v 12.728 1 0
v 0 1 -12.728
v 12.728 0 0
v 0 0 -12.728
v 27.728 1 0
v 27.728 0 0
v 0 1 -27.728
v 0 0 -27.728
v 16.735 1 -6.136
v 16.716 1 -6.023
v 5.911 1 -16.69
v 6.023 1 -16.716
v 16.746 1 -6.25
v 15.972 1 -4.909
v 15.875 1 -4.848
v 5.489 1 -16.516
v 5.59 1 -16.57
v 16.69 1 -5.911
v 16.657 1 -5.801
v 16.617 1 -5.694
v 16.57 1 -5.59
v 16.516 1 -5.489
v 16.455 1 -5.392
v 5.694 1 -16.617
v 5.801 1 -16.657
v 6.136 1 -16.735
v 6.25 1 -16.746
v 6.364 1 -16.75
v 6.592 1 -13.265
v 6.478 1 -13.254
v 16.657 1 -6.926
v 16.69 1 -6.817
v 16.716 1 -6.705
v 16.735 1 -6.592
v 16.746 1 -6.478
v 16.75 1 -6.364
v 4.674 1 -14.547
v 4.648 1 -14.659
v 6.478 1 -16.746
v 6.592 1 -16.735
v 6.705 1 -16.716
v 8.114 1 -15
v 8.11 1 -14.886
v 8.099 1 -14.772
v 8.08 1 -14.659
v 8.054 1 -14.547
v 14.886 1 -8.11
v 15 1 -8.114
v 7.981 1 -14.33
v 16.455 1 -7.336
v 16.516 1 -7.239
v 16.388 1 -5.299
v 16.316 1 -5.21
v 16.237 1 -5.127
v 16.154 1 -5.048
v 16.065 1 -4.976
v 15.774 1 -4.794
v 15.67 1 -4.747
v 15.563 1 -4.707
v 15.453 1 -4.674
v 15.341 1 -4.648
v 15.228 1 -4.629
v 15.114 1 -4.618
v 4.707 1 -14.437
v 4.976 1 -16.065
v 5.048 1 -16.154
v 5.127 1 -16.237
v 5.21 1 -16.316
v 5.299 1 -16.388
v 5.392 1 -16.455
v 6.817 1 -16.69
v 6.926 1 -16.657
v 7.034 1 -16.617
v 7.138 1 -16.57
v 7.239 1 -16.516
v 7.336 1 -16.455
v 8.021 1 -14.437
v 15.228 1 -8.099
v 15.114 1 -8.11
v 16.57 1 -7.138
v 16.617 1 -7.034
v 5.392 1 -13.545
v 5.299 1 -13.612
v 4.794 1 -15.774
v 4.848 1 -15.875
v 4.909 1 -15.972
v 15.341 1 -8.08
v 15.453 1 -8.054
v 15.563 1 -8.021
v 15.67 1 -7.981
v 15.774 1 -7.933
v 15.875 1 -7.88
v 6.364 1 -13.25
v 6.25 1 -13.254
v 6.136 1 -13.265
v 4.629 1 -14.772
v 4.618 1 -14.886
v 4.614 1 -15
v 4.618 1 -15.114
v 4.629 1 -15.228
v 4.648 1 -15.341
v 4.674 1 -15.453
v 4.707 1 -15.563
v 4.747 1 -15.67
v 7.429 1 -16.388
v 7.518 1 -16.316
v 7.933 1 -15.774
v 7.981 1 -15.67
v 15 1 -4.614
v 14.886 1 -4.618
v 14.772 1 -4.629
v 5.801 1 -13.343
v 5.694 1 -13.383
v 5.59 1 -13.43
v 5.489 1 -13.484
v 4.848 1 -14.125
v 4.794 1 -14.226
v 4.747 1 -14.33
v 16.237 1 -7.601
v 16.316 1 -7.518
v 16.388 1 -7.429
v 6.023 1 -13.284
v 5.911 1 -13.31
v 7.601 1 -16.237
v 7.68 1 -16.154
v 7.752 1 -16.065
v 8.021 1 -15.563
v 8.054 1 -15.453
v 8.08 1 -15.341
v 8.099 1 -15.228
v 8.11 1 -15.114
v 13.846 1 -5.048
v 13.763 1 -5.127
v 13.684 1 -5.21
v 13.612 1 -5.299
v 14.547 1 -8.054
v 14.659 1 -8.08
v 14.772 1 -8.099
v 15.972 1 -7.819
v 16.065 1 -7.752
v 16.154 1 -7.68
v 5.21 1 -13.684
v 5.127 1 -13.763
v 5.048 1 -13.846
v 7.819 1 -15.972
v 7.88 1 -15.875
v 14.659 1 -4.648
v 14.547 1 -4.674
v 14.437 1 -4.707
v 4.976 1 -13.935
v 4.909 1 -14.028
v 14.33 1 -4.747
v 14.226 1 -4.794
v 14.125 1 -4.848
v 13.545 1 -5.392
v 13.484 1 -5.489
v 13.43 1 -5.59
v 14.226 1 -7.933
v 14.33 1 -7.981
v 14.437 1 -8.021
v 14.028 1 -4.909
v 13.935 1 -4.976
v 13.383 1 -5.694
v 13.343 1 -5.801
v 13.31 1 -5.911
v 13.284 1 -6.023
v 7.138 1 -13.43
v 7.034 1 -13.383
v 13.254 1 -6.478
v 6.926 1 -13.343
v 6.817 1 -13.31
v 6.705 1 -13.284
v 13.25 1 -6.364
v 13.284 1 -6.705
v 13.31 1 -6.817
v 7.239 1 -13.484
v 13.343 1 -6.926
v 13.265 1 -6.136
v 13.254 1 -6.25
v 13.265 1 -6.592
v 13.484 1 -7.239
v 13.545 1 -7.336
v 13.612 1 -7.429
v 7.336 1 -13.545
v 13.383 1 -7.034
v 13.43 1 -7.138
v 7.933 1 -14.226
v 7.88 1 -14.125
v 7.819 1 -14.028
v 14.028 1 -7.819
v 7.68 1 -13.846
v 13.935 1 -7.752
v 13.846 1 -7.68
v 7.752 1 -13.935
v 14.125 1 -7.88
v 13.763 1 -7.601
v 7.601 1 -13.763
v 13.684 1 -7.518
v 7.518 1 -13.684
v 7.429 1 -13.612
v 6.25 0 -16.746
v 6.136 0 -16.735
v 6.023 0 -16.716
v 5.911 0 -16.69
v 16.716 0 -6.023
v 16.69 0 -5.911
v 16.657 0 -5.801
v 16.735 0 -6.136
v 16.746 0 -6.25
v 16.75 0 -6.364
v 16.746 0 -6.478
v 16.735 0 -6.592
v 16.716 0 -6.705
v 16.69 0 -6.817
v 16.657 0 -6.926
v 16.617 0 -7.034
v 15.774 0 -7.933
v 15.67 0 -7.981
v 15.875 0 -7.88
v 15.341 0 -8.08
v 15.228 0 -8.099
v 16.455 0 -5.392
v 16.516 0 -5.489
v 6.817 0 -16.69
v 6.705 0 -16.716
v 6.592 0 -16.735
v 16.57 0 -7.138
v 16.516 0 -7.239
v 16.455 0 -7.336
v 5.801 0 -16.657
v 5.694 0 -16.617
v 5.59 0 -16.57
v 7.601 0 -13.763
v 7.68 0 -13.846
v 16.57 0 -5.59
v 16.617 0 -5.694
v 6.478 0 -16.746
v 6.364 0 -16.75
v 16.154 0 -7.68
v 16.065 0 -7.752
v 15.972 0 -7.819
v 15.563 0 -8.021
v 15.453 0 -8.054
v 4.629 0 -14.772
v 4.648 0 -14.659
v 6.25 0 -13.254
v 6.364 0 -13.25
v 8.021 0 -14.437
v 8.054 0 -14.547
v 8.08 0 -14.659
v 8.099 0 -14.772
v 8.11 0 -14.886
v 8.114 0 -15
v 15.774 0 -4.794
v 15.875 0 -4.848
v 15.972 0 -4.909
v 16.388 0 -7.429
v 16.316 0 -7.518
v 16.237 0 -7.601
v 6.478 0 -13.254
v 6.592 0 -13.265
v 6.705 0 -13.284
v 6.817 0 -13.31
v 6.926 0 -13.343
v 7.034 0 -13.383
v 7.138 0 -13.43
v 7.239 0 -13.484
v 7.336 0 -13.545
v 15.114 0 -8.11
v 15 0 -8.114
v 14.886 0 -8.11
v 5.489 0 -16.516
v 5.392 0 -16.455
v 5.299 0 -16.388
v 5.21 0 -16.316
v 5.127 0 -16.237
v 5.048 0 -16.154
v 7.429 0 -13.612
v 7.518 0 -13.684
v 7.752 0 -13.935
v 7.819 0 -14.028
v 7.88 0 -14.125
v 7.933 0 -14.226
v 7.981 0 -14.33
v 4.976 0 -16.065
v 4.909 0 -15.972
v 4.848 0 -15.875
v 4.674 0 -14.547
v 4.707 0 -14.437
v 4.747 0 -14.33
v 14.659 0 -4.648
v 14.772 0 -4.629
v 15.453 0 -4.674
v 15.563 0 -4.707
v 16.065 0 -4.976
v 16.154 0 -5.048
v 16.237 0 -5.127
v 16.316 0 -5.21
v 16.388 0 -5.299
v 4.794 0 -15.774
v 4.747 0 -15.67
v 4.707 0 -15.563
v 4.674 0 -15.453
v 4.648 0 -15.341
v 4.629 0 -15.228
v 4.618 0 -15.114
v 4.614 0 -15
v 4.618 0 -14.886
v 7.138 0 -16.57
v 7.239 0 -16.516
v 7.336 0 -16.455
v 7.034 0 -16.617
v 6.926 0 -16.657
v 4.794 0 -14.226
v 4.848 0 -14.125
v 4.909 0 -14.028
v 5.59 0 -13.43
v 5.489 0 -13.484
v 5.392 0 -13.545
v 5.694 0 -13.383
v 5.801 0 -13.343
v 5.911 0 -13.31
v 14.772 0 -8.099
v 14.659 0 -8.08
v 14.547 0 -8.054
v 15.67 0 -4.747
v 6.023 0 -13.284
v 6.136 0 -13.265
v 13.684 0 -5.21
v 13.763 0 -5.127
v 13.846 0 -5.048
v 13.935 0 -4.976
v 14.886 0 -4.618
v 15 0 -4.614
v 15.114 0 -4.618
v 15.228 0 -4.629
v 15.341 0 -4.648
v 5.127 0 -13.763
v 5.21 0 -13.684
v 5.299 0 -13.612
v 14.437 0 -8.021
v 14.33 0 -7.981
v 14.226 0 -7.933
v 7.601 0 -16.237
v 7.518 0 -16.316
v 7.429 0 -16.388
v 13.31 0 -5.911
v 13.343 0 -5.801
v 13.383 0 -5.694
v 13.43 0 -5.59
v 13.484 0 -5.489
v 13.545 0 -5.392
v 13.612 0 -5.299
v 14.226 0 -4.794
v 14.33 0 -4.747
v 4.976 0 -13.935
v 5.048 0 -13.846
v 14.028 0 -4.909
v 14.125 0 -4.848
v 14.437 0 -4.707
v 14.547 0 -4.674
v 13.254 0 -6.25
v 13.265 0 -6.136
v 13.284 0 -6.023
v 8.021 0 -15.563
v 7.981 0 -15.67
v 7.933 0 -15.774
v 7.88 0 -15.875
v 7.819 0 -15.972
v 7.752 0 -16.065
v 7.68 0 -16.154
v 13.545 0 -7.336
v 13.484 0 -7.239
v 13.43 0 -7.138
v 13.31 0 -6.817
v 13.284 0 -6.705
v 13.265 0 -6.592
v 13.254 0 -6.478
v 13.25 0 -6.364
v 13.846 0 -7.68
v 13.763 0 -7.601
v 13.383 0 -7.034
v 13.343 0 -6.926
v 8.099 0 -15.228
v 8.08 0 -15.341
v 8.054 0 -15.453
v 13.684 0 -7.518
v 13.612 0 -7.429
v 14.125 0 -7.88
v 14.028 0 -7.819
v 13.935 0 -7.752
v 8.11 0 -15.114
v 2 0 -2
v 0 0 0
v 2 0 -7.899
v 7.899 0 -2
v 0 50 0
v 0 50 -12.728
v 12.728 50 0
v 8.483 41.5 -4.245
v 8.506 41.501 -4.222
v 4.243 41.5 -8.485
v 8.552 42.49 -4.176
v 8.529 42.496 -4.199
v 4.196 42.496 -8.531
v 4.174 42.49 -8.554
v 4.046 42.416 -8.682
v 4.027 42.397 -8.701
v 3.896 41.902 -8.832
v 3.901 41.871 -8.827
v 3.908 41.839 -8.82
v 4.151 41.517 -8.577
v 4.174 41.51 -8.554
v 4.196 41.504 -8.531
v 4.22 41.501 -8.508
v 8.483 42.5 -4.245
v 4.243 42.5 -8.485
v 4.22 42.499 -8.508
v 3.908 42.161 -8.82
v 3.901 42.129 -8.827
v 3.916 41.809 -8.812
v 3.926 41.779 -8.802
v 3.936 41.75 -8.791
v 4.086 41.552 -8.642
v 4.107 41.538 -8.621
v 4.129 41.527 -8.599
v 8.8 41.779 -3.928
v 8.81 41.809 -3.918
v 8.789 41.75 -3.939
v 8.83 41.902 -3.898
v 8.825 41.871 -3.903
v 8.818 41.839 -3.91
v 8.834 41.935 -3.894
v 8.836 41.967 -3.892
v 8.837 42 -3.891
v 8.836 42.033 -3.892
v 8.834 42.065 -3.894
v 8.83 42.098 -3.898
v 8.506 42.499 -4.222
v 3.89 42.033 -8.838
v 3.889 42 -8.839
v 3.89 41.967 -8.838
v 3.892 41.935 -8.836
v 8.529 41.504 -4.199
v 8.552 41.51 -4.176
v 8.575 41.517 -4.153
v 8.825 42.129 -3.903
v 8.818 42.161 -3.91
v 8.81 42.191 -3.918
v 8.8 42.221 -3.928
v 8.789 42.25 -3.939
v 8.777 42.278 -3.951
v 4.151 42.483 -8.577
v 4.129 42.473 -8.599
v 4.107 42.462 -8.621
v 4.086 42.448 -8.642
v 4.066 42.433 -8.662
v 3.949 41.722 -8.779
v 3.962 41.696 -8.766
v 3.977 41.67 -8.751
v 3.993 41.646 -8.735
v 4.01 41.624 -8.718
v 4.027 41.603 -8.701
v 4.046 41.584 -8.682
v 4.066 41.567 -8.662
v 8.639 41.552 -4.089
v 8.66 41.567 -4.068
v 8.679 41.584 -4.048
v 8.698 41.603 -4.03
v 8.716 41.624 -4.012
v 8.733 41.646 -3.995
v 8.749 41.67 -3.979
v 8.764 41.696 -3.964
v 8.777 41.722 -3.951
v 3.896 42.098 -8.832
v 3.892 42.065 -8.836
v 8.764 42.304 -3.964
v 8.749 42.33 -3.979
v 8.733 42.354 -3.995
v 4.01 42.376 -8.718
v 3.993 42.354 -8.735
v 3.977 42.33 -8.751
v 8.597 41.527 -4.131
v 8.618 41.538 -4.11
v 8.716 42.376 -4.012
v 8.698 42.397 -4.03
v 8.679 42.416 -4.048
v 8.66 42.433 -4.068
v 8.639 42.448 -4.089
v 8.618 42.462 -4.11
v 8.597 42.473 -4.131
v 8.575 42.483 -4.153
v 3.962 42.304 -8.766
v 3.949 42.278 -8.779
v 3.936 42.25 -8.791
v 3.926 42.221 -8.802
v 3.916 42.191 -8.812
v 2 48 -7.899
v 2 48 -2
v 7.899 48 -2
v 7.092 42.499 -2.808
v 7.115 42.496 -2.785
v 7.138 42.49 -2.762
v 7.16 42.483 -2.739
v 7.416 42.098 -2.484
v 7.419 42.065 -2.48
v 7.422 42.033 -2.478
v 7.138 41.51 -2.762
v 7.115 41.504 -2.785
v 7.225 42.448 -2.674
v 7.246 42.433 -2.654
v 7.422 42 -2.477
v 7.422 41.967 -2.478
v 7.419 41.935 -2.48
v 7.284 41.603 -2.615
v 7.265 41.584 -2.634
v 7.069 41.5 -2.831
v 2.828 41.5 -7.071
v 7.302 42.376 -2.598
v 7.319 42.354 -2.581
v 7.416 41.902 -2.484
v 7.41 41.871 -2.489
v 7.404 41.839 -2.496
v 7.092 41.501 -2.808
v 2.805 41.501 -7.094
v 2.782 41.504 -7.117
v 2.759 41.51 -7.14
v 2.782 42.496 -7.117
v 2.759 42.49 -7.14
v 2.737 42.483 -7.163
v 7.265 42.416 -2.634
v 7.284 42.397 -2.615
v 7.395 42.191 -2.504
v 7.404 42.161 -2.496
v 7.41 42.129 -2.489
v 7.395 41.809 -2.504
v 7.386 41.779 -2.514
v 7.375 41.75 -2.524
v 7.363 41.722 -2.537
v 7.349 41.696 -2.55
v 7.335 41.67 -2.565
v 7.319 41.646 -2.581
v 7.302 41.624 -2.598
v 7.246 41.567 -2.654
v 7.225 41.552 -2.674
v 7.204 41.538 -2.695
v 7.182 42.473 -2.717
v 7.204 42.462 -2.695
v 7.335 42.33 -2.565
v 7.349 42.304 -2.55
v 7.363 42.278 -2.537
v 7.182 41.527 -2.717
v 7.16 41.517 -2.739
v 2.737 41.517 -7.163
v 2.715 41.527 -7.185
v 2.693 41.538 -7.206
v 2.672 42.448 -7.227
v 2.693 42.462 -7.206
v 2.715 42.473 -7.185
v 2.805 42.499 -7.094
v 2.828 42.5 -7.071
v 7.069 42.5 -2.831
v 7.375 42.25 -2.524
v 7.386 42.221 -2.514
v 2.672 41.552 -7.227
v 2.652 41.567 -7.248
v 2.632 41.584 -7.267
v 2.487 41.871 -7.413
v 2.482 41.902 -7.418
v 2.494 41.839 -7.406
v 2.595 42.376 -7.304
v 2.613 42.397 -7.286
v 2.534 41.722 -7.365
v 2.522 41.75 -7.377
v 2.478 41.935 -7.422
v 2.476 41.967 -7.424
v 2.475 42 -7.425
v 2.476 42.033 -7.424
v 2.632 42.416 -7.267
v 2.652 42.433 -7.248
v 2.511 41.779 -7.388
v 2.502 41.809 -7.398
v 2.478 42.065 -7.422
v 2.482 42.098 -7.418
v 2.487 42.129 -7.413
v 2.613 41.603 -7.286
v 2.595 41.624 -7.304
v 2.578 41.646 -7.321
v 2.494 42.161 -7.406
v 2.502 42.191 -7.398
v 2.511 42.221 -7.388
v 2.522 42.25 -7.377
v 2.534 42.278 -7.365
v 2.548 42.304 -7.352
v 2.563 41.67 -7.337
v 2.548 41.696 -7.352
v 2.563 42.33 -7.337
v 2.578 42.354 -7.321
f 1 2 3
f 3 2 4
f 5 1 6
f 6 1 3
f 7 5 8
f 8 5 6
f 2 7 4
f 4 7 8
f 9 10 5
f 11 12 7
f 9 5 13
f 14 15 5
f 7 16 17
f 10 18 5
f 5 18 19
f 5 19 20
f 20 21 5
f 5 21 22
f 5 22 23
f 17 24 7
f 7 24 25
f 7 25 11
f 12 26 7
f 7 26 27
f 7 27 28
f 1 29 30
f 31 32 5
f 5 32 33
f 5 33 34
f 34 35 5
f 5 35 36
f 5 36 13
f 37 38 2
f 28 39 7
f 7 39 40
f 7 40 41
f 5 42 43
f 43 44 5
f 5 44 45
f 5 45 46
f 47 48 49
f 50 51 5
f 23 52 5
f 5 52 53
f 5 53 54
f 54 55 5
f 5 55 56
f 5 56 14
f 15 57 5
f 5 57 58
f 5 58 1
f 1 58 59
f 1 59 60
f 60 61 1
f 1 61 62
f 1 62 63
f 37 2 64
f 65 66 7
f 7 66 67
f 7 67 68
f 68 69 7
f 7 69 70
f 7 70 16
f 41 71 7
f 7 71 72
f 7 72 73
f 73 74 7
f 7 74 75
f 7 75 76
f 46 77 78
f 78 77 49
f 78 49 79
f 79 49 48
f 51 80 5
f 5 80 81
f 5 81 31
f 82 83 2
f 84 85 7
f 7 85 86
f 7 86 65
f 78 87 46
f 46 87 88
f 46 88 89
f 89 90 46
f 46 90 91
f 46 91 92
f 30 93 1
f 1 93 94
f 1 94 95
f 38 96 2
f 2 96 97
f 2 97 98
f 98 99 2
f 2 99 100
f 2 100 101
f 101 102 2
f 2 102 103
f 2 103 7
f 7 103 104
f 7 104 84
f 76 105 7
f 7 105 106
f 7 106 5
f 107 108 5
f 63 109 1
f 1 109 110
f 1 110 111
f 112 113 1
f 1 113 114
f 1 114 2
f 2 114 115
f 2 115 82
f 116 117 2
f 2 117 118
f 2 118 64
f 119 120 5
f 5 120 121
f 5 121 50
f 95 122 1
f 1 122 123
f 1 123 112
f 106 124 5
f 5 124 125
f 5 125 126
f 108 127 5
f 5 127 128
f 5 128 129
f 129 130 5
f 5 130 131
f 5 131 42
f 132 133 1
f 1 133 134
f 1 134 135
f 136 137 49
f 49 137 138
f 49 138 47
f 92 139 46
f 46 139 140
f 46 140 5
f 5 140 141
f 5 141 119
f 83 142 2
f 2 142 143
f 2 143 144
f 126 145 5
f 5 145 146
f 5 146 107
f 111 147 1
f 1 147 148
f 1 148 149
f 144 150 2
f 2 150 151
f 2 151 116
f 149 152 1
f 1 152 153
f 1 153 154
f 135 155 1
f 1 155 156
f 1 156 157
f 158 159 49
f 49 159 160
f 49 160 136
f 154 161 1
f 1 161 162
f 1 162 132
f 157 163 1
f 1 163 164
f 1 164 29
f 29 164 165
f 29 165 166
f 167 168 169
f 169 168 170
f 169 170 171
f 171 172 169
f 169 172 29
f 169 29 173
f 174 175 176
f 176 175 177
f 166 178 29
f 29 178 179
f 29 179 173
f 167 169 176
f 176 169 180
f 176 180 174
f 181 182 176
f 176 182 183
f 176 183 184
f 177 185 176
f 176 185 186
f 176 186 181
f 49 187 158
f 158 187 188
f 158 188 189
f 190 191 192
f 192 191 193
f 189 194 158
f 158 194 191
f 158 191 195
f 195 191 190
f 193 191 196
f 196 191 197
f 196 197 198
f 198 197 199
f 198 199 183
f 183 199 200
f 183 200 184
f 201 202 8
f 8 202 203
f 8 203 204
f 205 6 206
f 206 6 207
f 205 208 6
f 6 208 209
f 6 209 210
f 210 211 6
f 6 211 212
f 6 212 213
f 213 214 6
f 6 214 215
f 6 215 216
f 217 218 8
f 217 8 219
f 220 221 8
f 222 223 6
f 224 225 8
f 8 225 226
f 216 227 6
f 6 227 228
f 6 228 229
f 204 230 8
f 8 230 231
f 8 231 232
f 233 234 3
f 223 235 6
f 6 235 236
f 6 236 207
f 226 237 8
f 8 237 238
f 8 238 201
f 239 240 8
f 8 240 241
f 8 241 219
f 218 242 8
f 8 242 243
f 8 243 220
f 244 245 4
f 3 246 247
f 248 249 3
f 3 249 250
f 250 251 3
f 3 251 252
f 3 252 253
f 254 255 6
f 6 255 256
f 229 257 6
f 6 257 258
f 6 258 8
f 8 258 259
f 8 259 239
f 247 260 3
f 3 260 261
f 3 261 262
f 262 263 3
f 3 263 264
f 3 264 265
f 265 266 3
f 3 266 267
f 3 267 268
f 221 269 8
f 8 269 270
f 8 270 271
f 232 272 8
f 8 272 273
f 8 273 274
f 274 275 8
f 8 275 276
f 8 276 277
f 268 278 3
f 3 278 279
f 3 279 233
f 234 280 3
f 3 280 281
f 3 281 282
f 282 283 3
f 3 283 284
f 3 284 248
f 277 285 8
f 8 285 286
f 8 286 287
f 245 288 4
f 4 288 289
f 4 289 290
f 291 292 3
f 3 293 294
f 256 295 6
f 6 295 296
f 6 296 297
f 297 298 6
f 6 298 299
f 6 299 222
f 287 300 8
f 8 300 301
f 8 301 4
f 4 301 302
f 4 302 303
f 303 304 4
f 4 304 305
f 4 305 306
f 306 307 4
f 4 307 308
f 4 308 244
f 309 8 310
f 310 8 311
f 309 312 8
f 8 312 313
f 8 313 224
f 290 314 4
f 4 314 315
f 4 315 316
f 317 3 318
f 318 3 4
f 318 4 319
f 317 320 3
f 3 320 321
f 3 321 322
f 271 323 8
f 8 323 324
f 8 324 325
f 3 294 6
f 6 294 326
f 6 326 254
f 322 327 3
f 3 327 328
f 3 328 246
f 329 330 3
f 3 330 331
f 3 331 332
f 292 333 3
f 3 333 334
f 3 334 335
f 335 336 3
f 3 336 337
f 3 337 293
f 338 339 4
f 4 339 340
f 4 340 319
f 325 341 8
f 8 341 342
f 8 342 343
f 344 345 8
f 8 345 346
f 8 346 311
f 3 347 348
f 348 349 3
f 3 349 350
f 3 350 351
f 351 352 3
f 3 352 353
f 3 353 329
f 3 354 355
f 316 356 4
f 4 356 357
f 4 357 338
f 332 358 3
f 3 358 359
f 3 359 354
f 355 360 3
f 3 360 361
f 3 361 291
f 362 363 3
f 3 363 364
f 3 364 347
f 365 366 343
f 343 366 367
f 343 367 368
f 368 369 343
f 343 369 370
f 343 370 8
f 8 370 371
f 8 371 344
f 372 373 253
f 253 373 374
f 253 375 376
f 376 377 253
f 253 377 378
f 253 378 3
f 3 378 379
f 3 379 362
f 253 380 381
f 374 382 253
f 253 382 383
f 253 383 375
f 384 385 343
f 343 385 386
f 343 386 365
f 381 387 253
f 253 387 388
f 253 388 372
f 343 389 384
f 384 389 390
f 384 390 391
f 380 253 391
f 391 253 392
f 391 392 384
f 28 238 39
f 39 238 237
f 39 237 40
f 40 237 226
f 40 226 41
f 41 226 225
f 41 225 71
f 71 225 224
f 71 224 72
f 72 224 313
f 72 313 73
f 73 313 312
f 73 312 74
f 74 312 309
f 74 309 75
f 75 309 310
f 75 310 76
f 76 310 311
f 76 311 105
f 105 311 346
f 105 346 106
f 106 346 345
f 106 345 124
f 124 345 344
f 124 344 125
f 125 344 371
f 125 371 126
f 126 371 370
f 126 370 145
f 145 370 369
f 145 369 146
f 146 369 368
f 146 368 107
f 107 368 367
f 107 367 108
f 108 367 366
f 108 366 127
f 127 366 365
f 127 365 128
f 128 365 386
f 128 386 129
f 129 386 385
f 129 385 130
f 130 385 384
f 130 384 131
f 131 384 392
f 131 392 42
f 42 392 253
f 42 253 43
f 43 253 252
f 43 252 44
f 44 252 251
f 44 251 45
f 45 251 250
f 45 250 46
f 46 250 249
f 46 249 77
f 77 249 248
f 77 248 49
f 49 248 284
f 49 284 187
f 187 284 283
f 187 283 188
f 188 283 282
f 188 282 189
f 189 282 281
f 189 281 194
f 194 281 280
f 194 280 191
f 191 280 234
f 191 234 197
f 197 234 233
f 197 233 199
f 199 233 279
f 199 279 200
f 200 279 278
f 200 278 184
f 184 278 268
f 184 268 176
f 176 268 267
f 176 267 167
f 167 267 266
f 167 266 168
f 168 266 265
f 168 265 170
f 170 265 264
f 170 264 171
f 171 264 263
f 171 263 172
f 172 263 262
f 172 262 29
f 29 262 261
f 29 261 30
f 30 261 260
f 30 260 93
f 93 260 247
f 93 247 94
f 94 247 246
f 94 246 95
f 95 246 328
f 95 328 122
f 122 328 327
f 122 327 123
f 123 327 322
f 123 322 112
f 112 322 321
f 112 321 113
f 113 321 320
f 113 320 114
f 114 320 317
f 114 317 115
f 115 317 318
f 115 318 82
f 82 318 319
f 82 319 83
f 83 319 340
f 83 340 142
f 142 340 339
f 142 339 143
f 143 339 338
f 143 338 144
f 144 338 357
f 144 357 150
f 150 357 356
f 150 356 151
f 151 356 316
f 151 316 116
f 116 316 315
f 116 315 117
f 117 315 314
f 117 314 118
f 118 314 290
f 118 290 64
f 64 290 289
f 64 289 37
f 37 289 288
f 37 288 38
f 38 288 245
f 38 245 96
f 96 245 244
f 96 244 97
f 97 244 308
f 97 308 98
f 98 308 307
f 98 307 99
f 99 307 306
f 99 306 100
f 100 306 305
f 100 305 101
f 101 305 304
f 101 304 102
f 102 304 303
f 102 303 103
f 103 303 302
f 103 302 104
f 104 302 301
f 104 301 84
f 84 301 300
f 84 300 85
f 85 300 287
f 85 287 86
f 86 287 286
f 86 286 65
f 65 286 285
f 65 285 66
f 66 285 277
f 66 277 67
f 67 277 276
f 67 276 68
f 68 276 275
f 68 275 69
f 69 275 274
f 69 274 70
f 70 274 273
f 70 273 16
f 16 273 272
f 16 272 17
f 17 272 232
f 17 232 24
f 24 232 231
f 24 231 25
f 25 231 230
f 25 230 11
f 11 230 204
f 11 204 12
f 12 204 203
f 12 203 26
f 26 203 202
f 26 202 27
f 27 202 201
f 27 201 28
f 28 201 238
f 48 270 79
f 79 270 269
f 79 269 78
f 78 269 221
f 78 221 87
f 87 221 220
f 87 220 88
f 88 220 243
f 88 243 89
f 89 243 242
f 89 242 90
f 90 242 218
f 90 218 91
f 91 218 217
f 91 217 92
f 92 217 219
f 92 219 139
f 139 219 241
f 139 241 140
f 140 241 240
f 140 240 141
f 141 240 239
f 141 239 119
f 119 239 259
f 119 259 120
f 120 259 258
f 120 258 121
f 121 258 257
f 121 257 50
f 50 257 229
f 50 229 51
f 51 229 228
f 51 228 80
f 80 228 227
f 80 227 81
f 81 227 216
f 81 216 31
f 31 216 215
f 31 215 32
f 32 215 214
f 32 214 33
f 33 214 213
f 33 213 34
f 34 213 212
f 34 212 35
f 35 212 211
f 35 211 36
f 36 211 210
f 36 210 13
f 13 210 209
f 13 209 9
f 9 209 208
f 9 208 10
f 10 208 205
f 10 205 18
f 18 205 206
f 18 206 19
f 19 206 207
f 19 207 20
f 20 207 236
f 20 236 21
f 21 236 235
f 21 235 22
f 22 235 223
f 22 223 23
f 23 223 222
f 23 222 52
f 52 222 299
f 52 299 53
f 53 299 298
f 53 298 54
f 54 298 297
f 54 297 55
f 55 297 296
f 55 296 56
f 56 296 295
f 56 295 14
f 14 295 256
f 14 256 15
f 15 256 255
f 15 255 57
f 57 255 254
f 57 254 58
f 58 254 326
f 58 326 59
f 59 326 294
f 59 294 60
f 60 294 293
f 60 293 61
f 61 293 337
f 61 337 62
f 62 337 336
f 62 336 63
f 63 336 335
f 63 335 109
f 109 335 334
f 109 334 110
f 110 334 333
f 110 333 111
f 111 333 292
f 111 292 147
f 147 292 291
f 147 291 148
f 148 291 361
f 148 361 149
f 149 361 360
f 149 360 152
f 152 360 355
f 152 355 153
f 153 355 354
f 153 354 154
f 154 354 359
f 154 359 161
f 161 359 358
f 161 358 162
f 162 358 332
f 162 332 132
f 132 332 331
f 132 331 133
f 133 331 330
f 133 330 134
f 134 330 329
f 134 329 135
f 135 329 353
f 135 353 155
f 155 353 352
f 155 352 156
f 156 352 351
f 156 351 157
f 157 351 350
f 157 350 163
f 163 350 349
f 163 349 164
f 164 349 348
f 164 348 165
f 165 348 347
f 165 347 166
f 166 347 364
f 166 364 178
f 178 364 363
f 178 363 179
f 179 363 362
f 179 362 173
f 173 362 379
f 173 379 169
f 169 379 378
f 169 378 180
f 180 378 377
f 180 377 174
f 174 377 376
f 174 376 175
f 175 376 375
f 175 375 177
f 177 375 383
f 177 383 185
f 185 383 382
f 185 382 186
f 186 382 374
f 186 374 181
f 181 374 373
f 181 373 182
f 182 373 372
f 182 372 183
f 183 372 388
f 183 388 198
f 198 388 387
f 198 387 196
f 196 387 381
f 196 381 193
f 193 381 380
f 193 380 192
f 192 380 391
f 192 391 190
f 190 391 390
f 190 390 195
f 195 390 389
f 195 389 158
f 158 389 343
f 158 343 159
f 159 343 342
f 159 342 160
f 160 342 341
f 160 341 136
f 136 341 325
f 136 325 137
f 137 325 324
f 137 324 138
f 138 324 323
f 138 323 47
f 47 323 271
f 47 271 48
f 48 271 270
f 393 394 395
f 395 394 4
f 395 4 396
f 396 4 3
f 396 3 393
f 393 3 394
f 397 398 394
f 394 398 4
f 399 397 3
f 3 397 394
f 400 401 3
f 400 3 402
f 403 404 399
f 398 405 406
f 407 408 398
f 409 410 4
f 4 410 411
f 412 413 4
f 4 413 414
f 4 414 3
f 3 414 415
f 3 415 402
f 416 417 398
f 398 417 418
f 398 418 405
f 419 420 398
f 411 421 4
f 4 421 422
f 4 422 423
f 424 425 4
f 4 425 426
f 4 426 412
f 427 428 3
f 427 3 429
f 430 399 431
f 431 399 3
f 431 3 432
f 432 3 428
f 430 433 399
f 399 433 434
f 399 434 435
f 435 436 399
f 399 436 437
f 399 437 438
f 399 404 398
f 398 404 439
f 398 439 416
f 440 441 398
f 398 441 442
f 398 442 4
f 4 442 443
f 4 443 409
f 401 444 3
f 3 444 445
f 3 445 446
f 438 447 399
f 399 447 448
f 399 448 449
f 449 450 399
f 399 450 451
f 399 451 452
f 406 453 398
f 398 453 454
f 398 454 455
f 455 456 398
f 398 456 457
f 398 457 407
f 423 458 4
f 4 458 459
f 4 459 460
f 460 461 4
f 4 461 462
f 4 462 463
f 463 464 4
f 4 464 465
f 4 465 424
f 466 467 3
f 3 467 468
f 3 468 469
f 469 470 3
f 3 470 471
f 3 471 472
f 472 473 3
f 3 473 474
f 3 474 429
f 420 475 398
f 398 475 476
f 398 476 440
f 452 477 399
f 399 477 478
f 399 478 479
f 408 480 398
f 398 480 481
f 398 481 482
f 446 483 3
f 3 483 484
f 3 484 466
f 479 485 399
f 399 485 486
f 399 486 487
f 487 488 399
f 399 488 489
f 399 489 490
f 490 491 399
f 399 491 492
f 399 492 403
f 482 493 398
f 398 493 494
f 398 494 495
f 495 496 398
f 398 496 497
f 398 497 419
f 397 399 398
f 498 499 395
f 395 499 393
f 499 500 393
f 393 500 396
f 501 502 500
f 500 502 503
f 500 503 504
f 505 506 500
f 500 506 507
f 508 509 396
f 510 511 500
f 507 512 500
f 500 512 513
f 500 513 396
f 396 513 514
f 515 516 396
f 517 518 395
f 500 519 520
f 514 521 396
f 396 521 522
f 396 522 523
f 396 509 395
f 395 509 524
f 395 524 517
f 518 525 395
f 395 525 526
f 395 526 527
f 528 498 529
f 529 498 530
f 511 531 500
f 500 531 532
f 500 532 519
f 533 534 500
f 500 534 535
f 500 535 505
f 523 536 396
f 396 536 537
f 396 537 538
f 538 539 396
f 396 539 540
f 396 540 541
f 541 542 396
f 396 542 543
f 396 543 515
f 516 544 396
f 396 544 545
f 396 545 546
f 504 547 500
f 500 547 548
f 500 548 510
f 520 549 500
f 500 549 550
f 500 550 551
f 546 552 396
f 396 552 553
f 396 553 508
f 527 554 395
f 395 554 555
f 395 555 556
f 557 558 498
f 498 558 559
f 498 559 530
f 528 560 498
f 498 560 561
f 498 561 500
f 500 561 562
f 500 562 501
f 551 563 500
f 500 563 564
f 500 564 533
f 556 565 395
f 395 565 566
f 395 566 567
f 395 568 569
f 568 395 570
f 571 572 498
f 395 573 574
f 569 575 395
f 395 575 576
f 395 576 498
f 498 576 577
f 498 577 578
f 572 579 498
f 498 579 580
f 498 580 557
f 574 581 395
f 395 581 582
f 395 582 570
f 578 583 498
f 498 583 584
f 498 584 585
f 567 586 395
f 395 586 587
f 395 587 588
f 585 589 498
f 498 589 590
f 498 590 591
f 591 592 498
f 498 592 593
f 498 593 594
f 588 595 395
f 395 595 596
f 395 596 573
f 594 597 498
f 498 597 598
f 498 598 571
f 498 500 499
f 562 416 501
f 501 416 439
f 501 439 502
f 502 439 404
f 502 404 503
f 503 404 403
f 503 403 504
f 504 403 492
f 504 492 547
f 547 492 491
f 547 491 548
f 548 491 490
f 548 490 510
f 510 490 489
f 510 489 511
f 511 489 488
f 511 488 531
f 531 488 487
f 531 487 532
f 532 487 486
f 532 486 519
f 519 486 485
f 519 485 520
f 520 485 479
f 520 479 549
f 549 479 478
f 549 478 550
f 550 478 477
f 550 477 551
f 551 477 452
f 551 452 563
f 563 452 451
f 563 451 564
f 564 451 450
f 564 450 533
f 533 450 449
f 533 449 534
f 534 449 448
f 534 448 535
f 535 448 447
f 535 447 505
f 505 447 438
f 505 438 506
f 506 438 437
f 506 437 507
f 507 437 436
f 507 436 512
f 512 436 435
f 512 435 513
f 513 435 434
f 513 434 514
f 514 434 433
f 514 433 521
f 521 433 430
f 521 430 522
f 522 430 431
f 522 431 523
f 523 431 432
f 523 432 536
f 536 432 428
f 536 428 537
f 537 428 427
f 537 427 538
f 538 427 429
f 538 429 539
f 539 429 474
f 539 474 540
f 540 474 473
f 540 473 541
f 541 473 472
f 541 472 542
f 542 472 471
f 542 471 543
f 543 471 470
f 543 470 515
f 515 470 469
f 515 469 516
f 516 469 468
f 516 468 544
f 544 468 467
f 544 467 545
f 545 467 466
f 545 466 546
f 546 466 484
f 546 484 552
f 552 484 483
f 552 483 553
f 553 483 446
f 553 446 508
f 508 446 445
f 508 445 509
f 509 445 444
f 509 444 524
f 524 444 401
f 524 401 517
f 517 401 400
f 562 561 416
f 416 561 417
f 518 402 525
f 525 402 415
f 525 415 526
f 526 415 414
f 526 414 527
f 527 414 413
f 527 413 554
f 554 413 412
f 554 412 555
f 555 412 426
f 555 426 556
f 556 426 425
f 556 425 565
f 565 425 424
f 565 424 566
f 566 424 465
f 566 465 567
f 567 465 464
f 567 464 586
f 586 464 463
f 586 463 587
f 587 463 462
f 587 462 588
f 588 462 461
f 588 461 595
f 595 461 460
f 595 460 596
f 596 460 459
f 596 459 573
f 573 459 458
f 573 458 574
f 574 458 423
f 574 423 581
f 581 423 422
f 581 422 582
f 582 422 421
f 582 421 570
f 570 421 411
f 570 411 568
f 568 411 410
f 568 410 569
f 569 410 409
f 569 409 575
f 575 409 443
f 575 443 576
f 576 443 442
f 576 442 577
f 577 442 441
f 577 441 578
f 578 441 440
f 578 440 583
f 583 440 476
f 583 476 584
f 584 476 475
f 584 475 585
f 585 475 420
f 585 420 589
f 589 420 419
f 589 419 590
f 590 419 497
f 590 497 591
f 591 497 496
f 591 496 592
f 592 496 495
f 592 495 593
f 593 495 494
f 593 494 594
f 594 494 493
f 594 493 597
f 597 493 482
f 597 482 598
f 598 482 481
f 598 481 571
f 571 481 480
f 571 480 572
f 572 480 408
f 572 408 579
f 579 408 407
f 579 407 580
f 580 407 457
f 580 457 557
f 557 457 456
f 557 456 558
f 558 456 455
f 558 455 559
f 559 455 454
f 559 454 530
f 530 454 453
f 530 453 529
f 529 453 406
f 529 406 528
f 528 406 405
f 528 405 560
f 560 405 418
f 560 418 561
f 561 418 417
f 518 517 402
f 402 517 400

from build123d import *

# Parameters (mm, degrees)
EXTRUDE_1_DEPTH     = 50
EXTRUDE_2_DEPTH     = 1
SKETCH_3_R          = 1.75
CUT_EXTRUDE_1_DEPTH = 1
SHELL_1_T           = -2
CUT_EXTRUDE_2_DEPTH = 2


with BuildPart() as part:
    # 草图1 → 凸台-拉伸1 (new body)
    with BuildSketch(Plane(origin=(0, 0, 0), x_dir=(1, 0, 0), z_dir=(0, 1, 0))):
        Polygon((0, 0), (12.727922061, 0), (0, 12.727922061), align=None)
    extrude(amount=EXTRUDE_1_DEPTH)

    # 抽壳1
    shell_1_openings = [part.faces().sort_by_distance(p)[0] for p in [
        (4.242640687, 0, -4.242640687),
    ]]
    offset(amount=SHELL_1_T, openings=shell_1_openings, kind=Kind.INTERSECTION)

    # 草图4 → 切除-拉伸2 (cut)
    with BuildSketch(Plane(origin=(6.363961031, 0, -6.363961031), x_dir=(-0.7071067811865475, 0, -0.7071067811865477), z_dir=(0.7071067811865477, 0, -0.7071067811865475))):
        with BuildLine():
            Line((-2.996811013, 42.5), (3, 42.5))
            ThreePointArc((3, 42.5), (3.5, 42), (3, 41.5))
            Line((3, 41.5), (-2.996811013, 41.5))
            ThreePointArc((-2.996811013, 41.5), (-3.496811013, 42), (-2.996811013, 42.5))
        make_face()
    extrude(amount=-CUT_EXTRUDE_2_DEPTH, mode=Mode.SUBTRACT)


with BuildPart() as body_2:
    # 草图2 → 凸台-拉伸2 (new body)
    with BuildSketch(Plane(origin=(0, 0, 0), x_dir=(-1, 0, 0), z_dir=(0, -1, 0))):
        Polygon((0, 12.727922061), (0, 27.727922061), (-27.727922061, 0), (-12.727922061, 0), align=None)
    extrude(amount=-EXTRUDE_2_DEPTH)

    # 草图3 → 切除-拉伸1 (cut)
    with BuildSketch(Plane(origin=(0, 0, 0), x_dir=(-1, 0, 0), z_dir=(0, -1, 0))):
        with Locations(Location((-15, 6.363961031, 0), (0, 0, 90))):
            Circle(SKETCH_3_R)
        with Locations(Location((-6.363961031, 15, 0), (0, 0, 90))):
            Circle(SKETCH_3_R)
    extrude(amount=-CUT_EXTRUDE_1_DEPTH, mode=Mode.SUBTRACT)


solid = Compound([part.part, body_2.part])
